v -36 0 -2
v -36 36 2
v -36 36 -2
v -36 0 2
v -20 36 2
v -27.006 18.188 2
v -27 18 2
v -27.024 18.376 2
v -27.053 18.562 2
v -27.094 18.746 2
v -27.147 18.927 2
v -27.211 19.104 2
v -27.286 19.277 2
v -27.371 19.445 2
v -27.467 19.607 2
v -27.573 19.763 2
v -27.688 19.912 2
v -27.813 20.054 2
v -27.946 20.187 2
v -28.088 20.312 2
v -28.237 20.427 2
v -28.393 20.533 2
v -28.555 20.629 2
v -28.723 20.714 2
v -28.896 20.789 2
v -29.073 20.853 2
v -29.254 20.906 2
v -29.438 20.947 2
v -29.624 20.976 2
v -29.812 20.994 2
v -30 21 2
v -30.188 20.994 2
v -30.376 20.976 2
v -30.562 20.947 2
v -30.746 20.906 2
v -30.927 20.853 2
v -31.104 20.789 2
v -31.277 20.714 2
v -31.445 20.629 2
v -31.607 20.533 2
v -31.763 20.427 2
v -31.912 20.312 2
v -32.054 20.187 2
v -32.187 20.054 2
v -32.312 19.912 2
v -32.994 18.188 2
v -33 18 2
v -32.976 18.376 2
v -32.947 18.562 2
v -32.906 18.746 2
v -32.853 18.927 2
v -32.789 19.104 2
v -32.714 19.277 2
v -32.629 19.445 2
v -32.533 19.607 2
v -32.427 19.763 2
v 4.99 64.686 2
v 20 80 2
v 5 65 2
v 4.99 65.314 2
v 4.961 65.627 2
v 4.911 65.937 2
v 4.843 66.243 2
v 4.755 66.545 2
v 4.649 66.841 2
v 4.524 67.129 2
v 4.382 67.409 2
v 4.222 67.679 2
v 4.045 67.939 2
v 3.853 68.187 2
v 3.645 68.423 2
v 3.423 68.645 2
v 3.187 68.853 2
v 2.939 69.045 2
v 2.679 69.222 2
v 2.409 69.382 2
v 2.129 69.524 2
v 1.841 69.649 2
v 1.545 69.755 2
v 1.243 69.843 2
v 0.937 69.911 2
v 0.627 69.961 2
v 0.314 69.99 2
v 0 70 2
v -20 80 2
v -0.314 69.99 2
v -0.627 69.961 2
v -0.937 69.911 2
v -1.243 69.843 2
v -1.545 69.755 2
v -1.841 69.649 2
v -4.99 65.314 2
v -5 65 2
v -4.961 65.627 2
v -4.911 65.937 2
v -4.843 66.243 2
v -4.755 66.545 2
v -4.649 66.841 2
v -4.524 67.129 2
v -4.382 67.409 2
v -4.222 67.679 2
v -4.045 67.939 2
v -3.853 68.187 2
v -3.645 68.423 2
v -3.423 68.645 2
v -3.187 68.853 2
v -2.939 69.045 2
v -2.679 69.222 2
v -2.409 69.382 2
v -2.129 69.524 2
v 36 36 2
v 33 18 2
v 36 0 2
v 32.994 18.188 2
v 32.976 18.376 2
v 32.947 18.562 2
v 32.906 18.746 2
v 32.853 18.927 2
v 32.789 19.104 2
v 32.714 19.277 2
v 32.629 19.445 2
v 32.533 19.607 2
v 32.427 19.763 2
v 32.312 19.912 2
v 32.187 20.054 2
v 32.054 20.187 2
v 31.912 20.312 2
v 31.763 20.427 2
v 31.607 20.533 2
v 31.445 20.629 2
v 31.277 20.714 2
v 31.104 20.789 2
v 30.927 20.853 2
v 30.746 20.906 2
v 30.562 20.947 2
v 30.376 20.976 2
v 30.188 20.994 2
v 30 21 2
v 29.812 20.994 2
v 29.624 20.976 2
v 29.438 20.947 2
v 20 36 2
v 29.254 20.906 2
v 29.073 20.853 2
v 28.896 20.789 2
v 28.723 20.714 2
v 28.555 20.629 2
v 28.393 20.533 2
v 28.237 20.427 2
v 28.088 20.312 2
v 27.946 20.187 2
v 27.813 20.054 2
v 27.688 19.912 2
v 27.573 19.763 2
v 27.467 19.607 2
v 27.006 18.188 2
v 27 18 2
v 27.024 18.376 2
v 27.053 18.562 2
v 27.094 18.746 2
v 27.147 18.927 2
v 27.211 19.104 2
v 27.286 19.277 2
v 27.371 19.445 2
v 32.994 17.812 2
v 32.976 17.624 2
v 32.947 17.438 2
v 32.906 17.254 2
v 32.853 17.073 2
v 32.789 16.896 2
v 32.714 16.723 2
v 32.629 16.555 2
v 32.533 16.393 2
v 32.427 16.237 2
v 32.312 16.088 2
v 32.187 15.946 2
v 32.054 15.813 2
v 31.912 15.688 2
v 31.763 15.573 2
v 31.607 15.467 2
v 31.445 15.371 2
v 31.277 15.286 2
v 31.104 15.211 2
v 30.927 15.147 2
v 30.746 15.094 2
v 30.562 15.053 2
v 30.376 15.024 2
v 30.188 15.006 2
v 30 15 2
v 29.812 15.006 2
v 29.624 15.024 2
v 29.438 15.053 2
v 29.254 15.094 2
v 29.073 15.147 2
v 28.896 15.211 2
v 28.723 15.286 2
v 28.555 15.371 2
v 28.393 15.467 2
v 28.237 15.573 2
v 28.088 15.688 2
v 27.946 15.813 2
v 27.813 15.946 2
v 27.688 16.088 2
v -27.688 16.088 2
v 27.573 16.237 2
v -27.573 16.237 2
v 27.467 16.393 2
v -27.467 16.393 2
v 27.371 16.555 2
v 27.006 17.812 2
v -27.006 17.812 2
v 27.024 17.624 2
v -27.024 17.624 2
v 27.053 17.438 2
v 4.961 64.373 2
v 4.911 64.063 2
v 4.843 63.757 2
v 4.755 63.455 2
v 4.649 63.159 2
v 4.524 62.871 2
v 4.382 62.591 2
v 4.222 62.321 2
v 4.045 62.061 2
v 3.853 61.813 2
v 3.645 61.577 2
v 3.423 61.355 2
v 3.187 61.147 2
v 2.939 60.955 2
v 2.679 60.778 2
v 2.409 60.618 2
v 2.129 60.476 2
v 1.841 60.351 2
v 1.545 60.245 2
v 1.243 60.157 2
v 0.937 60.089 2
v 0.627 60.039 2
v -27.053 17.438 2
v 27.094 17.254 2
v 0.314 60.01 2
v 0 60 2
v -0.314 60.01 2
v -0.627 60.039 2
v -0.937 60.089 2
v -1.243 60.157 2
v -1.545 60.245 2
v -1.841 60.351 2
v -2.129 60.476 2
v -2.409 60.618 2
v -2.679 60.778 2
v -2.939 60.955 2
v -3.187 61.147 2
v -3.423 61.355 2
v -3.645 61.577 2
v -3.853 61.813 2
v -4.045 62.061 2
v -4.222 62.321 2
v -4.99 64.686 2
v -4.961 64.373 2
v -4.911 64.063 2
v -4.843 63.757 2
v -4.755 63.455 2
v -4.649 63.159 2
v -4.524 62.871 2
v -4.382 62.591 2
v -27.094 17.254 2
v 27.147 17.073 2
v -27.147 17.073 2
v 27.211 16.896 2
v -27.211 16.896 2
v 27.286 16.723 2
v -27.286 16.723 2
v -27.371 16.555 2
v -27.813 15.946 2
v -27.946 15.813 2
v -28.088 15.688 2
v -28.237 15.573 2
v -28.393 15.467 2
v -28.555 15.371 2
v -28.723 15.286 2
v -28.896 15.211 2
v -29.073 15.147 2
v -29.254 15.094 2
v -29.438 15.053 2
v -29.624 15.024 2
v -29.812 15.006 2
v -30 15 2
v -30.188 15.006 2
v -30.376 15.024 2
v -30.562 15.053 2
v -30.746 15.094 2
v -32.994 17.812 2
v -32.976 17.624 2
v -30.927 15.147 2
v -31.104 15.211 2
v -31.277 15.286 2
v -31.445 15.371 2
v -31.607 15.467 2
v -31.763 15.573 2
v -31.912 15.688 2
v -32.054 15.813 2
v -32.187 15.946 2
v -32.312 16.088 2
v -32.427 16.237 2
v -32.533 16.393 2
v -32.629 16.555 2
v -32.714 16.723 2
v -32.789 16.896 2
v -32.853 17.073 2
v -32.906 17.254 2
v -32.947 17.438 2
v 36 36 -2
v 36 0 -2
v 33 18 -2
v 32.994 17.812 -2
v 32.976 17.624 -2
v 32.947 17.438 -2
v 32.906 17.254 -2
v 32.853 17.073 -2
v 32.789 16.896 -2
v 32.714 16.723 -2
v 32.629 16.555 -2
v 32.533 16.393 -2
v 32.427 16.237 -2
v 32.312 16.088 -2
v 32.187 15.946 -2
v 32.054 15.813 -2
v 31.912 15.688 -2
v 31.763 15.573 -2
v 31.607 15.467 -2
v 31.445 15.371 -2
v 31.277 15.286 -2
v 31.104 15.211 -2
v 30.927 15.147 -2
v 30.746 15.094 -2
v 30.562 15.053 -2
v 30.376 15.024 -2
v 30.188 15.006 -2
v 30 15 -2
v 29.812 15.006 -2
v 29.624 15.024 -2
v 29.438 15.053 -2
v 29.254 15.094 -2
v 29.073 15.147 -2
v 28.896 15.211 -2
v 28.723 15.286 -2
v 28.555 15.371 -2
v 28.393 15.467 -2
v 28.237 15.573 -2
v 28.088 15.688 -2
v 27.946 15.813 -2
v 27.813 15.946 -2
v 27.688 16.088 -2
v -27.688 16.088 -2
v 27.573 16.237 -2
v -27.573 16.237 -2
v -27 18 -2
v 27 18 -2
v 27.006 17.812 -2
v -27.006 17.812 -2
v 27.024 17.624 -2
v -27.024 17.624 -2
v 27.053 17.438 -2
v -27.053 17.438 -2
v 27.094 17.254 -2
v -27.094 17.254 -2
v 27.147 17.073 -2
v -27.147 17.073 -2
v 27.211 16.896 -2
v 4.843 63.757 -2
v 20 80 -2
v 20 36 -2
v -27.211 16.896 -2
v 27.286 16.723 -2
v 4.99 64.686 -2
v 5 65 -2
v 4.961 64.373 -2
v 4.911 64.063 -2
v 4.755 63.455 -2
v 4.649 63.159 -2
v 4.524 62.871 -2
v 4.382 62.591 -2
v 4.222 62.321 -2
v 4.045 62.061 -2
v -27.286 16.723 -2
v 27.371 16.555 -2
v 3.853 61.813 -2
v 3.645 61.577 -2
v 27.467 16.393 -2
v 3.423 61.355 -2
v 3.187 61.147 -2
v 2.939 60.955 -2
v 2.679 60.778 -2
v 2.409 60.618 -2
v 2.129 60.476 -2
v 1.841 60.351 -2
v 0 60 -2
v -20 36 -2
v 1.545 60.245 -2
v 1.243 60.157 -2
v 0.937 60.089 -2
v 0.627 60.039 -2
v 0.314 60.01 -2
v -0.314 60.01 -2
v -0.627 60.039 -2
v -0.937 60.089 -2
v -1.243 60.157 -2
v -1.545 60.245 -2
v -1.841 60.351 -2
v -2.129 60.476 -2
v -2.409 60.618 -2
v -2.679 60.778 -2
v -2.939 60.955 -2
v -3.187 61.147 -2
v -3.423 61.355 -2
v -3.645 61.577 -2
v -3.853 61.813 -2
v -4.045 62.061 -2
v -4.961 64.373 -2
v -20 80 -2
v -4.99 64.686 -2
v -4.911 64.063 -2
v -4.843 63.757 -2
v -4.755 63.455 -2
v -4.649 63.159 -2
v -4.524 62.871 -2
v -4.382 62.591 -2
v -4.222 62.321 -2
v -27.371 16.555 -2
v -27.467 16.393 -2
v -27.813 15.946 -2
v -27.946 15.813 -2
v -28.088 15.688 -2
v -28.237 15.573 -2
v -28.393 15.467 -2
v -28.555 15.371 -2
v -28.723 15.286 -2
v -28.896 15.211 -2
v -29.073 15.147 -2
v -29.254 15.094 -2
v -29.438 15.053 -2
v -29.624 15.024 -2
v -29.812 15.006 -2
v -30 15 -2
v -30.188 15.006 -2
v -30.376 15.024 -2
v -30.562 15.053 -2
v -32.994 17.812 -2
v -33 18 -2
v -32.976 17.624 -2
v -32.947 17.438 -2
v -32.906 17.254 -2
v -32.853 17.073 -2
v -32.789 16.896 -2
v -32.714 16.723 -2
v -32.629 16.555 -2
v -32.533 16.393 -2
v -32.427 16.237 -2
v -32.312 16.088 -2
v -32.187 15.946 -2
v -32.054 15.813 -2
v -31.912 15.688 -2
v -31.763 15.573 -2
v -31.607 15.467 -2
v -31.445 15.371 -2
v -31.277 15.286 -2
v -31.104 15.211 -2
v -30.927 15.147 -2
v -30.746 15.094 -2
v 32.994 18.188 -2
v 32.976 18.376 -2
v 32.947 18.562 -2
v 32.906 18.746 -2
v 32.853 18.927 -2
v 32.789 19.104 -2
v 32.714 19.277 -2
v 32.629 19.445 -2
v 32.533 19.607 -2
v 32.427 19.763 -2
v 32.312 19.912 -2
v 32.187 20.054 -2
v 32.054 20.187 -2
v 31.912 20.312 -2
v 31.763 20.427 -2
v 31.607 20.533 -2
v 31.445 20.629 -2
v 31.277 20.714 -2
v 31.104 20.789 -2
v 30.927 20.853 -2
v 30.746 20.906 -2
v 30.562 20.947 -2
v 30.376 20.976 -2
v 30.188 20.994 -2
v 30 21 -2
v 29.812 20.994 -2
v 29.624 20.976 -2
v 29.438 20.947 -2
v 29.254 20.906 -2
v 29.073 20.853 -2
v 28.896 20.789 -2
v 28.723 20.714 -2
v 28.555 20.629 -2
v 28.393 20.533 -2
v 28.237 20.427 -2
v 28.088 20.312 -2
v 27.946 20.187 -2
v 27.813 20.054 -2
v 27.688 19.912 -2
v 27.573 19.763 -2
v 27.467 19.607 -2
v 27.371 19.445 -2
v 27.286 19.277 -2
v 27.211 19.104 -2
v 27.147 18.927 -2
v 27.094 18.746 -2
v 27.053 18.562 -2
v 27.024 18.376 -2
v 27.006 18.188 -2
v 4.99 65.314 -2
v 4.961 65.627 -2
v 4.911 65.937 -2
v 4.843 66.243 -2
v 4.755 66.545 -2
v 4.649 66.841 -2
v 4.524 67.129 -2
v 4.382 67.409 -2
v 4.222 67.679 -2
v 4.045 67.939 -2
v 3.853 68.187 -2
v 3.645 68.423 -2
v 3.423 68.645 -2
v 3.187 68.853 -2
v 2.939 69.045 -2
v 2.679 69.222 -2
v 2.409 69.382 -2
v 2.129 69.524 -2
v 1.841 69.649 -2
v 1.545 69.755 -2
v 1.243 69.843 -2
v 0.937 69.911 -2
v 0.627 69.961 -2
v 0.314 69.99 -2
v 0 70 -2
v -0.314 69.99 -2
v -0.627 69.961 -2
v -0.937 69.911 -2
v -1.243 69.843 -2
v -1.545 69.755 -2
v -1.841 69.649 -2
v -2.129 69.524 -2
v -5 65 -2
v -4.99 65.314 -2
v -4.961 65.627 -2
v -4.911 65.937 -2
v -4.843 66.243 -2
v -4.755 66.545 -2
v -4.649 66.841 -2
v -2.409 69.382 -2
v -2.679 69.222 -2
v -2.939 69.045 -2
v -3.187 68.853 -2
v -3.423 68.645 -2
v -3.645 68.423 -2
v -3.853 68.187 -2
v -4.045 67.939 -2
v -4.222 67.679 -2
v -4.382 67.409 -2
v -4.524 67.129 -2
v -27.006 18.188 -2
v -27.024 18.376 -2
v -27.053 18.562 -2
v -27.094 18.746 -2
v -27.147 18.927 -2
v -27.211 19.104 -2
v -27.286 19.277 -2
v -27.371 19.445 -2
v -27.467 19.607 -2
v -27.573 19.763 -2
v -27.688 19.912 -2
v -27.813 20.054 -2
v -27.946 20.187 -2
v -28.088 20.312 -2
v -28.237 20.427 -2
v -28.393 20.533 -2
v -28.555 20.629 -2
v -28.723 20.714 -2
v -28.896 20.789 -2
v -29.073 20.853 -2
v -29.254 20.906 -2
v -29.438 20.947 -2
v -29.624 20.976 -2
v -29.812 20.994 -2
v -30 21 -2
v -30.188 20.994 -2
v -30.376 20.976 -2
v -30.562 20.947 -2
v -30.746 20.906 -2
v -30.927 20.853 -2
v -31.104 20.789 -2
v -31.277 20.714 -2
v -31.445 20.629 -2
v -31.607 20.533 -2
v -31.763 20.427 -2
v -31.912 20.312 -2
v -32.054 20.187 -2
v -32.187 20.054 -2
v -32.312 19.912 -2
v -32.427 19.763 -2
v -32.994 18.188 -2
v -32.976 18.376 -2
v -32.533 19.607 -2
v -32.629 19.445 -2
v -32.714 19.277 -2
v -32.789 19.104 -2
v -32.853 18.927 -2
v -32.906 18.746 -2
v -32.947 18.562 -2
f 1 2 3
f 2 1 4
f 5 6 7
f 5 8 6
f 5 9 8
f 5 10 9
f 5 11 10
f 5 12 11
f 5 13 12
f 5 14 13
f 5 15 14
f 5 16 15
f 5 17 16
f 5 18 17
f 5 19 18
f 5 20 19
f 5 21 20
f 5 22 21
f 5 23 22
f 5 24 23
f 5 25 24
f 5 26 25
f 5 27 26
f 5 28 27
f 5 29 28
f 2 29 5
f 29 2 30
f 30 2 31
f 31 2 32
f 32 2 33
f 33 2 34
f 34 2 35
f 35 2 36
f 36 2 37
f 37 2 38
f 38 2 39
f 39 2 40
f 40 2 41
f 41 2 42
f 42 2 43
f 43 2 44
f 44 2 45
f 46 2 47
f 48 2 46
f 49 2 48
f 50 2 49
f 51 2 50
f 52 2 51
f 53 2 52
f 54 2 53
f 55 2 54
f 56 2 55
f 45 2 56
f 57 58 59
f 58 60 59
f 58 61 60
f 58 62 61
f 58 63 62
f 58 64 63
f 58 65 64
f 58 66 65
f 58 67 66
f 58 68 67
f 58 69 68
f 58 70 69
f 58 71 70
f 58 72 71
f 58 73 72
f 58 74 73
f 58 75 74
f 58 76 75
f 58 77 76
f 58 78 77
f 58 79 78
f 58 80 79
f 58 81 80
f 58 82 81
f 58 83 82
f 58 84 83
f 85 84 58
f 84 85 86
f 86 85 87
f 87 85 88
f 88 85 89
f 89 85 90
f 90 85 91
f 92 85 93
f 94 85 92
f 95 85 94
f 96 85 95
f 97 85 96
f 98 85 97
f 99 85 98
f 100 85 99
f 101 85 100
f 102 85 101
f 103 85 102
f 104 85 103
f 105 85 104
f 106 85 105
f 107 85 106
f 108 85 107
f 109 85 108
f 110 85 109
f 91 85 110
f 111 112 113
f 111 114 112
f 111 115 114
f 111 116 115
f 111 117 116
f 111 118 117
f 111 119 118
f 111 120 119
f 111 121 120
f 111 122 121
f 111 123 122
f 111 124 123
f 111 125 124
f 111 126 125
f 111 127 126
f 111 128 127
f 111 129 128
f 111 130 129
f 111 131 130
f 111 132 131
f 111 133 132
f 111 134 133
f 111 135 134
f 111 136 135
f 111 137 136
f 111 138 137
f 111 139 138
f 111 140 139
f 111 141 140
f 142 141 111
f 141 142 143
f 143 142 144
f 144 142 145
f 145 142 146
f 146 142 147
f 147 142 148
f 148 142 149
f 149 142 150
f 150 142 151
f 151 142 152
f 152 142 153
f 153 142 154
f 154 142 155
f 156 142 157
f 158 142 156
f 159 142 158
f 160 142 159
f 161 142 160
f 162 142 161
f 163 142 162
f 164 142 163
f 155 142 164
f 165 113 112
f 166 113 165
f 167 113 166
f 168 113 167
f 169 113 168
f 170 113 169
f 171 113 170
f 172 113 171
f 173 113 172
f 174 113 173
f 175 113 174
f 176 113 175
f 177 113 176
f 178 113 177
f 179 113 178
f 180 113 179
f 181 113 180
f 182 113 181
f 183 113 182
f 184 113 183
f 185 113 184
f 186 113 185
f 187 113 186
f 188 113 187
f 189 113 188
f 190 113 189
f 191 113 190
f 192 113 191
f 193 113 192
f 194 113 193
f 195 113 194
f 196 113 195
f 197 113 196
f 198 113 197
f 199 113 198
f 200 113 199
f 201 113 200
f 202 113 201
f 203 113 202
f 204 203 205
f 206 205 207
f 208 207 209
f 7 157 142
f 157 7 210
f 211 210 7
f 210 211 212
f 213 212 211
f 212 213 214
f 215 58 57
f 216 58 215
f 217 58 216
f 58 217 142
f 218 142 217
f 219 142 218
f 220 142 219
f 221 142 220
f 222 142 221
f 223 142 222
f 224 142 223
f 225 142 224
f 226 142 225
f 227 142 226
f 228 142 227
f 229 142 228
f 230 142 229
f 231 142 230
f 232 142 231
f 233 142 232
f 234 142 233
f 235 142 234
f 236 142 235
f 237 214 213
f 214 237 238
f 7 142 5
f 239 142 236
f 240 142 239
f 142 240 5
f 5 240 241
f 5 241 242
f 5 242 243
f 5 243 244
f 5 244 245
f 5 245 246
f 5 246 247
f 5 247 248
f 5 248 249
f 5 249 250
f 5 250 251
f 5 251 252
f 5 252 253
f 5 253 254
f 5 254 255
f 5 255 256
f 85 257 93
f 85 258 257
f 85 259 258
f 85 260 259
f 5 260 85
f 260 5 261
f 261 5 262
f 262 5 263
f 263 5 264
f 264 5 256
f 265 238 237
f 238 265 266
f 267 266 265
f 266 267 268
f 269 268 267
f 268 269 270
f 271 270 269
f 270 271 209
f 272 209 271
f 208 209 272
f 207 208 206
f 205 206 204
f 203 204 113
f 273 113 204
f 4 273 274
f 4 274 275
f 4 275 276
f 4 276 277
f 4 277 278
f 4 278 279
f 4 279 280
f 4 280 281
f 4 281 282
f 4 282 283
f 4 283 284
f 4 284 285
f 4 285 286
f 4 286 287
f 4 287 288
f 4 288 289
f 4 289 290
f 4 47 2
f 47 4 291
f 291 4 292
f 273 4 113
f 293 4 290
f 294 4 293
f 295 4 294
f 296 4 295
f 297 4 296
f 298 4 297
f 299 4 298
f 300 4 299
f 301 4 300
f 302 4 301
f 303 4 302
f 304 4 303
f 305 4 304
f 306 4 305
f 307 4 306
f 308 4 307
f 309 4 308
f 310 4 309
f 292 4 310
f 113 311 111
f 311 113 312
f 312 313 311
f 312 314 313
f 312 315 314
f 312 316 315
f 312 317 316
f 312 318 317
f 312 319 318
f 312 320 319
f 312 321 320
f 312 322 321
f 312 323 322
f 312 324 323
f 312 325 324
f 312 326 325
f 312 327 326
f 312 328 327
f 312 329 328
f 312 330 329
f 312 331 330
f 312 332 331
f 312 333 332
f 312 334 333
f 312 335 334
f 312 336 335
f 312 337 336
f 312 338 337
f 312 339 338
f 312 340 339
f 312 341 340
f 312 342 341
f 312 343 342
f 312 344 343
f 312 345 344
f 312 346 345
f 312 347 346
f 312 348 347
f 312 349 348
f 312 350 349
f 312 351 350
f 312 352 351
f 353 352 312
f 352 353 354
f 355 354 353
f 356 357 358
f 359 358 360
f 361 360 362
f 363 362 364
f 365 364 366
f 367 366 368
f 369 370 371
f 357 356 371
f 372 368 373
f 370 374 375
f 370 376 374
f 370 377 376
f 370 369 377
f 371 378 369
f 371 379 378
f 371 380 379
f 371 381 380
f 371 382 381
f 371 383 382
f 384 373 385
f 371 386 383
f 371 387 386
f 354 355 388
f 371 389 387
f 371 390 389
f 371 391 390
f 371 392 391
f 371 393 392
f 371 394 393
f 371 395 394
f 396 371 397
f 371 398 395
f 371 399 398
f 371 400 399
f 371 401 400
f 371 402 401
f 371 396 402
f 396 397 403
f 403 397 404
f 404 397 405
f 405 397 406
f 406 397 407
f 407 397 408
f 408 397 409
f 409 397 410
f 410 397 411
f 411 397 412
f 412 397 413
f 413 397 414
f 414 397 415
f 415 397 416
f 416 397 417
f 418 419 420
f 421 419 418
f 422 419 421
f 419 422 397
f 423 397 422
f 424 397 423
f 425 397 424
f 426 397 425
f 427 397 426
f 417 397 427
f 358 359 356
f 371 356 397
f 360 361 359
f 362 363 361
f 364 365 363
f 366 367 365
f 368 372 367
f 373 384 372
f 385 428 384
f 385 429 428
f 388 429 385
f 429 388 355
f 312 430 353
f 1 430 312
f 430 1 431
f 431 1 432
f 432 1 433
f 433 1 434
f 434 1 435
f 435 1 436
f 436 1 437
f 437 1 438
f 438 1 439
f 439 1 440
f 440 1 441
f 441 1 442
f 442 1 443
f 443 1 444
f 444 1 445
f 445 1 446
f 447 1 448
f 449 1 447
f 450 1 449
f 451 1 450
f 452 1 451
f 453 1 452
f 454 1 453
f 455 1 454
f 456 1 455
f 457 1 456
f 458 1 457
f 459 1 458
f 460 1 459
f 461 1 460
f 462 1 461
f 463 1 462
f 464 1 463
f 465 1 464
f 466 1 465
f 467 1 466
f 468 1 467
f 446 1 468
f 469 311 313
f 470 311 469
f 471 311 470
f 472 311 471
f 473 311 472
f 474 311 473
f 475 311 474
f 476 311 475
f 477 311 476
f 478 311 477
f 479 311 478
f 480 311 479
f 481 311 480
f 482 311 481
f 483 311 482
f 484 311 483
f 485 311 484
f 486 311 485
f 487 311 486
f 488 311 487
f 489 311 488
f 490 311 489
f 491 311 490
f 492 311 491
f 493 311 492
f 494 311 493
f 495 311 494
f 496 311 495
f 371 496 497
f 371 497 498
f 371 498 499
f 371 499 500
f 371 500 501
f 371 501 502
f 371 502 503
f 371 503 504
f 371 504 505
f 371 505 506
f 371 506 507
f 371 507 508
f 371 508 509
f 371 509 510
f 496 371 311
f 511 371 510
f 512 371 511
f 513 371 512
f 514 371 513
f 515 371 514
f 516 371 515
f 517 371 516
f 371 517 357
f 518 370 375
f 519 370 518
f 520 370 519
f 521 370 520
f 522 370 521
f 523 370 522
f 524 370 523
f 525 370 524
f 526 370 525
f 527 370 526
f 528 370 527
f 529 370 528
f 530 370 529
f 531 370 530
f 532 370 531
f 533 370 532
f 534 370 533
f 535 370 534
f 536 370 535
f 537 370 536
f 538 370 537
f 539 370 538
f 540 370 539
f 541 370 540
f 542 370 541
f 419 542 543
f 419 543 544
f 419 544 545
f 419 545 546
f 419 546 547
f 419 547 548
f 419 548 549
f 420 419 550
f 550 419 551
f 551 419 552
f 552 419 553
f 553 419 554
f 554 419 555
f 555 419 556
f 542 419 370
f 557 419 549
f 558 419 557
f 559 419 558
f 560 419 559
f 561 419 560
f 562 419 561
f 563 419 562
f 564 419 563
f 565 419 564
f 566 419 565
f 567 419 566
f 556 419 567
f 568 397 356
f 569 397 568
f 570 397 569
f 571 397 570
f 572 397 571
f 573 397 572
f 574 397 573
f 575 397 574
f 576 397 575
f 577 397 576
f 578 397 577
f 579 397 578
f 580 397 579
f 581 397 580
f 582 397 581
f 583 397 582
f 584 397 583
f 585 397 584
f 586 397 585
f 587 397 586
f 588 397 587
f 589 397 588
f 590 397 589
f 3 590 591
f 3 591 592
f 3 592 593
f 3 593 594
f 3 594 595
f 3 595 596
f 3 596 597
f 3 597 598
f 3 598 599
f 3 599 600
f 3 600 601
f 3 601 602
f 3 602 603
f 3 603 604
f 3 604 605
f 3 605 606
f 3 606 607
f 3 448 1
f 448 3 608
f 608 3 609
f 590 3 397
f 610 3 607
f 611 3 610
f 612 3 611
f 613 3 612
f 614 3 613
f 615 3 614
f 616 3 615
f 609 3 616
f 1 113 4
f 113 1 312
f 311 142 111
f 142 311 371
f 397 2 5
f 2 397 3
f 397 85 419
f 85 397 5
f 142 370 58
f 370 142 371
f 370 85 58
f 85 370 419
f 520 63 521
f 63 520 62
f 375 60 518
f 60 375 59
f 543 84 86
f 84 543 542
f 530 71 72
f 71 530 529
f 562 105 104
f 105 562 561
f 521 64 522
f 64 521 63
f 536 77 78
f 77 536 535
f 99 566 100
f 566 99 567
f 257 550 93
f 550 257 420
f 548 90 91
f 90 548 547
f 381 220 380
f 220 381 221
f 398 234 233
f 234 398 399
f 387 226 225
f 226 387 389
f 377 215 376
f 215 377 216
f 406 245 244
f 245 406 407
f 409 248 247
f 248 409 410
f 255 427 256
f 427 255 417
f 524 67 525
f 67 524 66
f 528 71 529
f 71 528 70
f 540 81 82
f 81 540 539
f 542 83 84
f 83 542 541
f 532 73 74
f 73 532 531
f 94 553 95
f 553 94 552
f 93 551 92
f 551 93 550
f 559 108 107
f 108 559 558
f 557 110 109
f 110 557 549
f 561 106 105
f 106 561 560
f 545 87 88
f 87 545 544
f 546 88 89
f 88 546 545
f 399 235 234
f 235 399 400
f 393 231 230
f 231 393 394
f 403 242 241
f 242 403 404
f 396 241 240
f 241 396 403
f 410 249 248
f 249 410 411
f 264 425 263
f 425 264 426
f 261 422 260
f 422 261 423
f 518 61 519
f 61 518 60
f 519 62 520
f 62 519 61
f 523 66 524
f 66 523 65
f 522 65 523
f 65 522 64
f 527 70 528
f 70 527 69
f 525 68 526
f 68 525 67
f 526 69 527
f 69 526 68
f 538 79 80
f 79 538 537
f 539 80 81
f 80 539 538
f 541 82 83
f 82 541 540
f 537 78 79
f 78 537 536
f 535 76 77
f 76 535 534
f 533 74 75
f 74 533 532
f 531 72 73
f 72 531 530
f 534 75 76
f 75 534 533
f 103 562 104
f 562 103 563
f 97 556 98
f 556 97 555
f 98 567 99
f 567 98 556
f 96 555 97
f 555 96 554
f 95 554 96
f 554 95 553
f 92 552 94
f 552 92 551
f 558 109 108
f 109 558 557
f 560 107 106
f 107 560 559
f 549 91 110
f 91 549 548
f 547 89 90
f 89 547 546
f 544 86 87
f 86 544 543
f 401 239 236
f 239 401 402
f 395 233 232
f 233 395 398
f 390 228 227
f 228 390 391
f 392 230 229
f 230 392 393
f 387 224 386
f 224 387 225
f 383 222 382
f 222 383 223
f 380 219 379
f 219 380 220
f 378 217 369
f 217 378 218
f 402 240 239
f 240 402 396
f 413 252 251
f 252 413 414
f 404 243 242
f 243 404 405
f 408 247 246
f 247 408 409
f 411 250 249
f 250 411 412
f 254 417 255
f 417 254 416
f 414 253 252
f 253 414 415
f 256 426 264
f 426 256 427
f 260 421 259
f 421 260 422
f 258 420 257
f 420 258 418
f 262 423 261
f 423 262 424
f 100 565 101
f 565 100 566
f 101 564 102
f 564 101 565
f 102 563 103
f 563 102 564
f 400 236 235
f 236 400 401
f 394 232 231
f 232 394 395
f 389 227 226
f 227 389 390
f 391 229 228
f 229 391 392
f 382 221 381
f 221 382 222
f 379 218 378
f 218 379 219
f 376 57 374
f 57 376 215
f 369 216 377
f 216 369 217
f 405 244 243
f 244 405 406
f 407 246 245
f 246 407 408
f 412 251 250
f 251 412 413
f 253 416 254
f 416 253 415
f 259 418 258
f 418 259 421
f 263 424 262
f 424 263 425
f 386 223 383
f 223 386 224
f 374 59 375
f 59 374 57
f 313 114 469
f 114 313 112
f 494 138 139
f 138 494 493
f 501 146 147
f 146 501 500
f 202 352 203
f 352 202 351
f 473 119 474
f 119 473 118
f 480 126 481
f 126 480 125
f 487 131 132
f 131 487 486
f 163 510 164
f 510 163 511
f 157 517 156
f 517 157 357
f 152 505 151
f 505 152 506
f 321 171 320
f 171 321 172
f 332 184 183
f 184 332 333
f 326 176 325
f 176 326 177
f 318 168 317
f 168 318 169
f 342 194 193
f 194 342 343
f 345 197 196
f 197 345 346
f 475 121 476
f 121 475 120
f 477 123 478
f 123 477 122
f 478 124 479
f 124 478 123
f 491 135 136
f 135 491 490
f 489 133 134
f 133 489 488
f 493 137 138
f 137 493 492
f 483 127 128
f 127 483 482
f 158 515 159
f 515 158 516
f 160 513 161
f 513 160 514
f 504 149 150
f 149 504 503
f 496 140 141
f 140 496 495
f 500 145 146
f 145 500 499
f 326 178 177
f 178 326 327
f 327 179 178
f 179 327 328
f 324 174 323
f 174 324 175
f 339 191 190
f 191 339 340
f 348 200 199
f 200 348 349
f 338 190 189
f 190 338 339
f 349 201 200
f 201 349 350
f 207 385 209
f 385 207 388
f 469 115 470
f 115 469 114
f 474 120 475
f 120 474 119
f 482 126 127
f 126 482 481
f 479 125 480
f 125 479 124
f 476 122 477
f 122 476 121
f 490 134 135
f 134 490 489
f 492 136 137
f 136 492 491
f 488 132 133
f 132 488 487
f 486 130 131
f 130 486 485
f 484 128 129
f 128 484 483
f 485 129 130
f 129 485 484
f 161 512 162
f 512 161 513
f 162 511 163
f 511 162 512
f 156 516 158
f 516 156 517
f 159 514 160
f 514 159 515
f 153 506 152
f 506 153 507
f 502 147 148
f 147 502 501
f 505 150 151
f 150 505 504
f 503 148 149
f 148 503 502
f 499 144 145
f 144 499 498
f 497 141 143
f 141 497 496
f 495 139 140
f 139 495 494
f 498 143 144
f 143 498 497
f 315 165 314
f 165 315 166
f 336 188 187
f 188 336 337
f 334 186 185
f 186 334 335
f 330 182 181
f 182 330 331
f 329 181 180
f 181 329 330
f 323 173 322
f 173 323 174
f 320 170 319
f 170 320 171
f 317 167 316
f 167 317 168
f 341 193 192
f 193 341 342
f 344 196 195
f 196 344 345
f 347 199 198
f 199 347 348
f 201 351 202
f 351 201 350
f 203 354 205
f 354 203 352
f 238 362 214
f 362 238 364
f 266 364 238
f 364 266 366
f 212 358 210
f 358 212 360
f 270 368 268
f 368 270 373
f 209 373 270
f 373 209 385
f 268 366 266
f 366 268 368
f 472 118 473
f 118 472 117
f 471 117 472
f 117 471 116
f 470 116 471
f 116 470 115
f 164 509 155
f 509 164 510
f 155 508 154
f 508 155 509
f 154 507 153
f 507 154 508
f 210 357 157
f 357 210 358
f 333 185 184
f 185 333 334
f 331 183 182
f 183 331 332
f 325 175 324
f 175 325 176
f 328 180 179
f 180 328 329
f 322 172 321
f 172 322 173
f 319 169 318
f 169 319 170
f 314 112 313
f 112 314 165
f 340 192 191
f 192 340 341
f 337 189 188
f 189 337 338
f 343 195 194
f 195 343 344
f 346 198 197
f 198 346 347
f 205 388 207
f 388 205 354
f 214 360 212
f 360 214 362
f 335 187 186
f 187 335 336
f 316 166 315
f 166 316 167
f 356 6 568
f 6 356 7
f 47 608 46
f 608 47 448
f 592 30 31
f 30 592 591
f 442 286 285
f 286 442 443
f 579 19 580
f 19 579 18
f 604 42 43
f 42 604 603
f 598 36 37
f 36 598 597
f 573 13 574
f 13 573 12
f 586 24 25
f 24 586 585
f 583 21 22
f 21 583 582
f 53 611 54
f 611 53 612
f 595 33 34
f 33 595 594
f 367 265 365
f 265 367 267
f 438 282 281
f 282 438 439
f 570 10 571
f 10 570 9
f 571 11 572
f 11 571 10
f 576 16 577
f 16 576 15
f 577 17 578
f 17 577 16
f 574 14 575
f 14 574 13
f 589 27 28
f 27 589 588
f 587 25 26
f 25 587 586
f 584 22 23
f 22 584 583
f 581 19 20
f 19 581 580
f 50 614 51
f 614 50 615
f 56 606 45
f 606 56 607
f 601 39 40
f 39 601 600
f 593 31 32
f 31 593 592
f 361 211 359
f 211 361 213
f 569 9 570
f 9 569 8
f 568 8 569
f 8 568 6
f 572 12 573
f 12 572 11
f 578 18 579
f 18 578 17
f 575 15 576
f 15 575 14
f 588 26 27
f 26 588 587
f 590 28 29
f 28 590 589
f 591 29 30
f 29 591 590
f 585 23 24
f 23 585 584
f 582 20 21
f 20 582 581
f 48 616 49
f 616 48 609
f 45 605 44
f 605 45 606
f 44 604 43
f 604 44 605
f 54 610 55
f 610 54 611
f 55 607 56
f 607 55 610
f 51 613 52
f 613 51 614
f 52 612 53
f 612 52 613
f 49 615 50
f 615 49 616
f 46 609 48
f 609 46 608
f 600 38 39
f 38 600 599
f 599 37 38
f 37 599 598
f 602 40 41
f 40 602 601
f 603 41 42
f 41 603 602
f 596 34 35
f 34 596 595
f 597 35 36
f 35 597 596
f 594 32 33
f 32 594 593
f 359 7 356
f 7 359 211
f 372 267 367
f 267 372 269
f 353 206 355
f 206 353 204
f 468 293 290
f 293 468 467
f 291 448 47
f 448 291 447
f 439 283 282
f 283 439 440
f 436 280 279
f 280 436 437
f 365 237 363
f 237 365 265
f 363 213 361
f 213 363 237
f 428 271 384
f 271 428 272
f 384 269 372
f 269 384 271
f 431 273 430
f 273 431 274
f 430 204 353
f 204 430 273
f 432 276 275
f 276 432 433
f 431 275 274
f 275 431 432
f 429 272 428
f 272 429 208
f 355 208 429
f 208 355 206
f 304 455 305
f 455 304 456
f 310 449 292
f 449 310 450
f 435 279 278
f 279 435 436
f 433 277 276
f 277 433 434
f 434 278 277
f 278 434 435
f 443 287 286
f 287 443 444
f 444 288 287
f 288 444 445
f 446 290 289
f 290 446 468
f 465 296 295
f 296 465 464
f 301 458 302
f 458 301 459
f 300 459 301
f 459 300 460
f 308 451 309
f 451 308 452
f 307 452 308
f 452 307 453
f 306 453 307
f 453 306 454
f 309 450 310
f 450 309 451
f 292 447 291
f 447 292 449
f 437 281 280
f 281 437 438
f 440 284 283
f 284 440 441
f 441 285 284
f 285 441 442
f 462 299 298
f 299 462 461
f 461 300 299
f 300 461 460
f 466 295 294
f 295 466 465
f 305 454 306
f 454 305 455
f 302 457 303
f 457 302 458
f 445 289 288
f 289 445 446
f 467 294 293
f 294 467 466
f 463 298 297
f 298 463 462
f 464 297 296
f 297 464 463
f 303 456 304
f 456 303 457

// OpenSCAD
$fn=100;
difference(){
translate([0,18,0]){
cube([72,36,4],center=true);
translate([0,18+22,0])
cube([40,44,4],center=true);}

translate([0,65,0])
cylinder(h=20,d=10,center=true);

translate([30,18,0])
cylinder(h=20,d=6,center=true);

translate([-30,18,0])
cylinder(h=20,d=6,center=true);

}
